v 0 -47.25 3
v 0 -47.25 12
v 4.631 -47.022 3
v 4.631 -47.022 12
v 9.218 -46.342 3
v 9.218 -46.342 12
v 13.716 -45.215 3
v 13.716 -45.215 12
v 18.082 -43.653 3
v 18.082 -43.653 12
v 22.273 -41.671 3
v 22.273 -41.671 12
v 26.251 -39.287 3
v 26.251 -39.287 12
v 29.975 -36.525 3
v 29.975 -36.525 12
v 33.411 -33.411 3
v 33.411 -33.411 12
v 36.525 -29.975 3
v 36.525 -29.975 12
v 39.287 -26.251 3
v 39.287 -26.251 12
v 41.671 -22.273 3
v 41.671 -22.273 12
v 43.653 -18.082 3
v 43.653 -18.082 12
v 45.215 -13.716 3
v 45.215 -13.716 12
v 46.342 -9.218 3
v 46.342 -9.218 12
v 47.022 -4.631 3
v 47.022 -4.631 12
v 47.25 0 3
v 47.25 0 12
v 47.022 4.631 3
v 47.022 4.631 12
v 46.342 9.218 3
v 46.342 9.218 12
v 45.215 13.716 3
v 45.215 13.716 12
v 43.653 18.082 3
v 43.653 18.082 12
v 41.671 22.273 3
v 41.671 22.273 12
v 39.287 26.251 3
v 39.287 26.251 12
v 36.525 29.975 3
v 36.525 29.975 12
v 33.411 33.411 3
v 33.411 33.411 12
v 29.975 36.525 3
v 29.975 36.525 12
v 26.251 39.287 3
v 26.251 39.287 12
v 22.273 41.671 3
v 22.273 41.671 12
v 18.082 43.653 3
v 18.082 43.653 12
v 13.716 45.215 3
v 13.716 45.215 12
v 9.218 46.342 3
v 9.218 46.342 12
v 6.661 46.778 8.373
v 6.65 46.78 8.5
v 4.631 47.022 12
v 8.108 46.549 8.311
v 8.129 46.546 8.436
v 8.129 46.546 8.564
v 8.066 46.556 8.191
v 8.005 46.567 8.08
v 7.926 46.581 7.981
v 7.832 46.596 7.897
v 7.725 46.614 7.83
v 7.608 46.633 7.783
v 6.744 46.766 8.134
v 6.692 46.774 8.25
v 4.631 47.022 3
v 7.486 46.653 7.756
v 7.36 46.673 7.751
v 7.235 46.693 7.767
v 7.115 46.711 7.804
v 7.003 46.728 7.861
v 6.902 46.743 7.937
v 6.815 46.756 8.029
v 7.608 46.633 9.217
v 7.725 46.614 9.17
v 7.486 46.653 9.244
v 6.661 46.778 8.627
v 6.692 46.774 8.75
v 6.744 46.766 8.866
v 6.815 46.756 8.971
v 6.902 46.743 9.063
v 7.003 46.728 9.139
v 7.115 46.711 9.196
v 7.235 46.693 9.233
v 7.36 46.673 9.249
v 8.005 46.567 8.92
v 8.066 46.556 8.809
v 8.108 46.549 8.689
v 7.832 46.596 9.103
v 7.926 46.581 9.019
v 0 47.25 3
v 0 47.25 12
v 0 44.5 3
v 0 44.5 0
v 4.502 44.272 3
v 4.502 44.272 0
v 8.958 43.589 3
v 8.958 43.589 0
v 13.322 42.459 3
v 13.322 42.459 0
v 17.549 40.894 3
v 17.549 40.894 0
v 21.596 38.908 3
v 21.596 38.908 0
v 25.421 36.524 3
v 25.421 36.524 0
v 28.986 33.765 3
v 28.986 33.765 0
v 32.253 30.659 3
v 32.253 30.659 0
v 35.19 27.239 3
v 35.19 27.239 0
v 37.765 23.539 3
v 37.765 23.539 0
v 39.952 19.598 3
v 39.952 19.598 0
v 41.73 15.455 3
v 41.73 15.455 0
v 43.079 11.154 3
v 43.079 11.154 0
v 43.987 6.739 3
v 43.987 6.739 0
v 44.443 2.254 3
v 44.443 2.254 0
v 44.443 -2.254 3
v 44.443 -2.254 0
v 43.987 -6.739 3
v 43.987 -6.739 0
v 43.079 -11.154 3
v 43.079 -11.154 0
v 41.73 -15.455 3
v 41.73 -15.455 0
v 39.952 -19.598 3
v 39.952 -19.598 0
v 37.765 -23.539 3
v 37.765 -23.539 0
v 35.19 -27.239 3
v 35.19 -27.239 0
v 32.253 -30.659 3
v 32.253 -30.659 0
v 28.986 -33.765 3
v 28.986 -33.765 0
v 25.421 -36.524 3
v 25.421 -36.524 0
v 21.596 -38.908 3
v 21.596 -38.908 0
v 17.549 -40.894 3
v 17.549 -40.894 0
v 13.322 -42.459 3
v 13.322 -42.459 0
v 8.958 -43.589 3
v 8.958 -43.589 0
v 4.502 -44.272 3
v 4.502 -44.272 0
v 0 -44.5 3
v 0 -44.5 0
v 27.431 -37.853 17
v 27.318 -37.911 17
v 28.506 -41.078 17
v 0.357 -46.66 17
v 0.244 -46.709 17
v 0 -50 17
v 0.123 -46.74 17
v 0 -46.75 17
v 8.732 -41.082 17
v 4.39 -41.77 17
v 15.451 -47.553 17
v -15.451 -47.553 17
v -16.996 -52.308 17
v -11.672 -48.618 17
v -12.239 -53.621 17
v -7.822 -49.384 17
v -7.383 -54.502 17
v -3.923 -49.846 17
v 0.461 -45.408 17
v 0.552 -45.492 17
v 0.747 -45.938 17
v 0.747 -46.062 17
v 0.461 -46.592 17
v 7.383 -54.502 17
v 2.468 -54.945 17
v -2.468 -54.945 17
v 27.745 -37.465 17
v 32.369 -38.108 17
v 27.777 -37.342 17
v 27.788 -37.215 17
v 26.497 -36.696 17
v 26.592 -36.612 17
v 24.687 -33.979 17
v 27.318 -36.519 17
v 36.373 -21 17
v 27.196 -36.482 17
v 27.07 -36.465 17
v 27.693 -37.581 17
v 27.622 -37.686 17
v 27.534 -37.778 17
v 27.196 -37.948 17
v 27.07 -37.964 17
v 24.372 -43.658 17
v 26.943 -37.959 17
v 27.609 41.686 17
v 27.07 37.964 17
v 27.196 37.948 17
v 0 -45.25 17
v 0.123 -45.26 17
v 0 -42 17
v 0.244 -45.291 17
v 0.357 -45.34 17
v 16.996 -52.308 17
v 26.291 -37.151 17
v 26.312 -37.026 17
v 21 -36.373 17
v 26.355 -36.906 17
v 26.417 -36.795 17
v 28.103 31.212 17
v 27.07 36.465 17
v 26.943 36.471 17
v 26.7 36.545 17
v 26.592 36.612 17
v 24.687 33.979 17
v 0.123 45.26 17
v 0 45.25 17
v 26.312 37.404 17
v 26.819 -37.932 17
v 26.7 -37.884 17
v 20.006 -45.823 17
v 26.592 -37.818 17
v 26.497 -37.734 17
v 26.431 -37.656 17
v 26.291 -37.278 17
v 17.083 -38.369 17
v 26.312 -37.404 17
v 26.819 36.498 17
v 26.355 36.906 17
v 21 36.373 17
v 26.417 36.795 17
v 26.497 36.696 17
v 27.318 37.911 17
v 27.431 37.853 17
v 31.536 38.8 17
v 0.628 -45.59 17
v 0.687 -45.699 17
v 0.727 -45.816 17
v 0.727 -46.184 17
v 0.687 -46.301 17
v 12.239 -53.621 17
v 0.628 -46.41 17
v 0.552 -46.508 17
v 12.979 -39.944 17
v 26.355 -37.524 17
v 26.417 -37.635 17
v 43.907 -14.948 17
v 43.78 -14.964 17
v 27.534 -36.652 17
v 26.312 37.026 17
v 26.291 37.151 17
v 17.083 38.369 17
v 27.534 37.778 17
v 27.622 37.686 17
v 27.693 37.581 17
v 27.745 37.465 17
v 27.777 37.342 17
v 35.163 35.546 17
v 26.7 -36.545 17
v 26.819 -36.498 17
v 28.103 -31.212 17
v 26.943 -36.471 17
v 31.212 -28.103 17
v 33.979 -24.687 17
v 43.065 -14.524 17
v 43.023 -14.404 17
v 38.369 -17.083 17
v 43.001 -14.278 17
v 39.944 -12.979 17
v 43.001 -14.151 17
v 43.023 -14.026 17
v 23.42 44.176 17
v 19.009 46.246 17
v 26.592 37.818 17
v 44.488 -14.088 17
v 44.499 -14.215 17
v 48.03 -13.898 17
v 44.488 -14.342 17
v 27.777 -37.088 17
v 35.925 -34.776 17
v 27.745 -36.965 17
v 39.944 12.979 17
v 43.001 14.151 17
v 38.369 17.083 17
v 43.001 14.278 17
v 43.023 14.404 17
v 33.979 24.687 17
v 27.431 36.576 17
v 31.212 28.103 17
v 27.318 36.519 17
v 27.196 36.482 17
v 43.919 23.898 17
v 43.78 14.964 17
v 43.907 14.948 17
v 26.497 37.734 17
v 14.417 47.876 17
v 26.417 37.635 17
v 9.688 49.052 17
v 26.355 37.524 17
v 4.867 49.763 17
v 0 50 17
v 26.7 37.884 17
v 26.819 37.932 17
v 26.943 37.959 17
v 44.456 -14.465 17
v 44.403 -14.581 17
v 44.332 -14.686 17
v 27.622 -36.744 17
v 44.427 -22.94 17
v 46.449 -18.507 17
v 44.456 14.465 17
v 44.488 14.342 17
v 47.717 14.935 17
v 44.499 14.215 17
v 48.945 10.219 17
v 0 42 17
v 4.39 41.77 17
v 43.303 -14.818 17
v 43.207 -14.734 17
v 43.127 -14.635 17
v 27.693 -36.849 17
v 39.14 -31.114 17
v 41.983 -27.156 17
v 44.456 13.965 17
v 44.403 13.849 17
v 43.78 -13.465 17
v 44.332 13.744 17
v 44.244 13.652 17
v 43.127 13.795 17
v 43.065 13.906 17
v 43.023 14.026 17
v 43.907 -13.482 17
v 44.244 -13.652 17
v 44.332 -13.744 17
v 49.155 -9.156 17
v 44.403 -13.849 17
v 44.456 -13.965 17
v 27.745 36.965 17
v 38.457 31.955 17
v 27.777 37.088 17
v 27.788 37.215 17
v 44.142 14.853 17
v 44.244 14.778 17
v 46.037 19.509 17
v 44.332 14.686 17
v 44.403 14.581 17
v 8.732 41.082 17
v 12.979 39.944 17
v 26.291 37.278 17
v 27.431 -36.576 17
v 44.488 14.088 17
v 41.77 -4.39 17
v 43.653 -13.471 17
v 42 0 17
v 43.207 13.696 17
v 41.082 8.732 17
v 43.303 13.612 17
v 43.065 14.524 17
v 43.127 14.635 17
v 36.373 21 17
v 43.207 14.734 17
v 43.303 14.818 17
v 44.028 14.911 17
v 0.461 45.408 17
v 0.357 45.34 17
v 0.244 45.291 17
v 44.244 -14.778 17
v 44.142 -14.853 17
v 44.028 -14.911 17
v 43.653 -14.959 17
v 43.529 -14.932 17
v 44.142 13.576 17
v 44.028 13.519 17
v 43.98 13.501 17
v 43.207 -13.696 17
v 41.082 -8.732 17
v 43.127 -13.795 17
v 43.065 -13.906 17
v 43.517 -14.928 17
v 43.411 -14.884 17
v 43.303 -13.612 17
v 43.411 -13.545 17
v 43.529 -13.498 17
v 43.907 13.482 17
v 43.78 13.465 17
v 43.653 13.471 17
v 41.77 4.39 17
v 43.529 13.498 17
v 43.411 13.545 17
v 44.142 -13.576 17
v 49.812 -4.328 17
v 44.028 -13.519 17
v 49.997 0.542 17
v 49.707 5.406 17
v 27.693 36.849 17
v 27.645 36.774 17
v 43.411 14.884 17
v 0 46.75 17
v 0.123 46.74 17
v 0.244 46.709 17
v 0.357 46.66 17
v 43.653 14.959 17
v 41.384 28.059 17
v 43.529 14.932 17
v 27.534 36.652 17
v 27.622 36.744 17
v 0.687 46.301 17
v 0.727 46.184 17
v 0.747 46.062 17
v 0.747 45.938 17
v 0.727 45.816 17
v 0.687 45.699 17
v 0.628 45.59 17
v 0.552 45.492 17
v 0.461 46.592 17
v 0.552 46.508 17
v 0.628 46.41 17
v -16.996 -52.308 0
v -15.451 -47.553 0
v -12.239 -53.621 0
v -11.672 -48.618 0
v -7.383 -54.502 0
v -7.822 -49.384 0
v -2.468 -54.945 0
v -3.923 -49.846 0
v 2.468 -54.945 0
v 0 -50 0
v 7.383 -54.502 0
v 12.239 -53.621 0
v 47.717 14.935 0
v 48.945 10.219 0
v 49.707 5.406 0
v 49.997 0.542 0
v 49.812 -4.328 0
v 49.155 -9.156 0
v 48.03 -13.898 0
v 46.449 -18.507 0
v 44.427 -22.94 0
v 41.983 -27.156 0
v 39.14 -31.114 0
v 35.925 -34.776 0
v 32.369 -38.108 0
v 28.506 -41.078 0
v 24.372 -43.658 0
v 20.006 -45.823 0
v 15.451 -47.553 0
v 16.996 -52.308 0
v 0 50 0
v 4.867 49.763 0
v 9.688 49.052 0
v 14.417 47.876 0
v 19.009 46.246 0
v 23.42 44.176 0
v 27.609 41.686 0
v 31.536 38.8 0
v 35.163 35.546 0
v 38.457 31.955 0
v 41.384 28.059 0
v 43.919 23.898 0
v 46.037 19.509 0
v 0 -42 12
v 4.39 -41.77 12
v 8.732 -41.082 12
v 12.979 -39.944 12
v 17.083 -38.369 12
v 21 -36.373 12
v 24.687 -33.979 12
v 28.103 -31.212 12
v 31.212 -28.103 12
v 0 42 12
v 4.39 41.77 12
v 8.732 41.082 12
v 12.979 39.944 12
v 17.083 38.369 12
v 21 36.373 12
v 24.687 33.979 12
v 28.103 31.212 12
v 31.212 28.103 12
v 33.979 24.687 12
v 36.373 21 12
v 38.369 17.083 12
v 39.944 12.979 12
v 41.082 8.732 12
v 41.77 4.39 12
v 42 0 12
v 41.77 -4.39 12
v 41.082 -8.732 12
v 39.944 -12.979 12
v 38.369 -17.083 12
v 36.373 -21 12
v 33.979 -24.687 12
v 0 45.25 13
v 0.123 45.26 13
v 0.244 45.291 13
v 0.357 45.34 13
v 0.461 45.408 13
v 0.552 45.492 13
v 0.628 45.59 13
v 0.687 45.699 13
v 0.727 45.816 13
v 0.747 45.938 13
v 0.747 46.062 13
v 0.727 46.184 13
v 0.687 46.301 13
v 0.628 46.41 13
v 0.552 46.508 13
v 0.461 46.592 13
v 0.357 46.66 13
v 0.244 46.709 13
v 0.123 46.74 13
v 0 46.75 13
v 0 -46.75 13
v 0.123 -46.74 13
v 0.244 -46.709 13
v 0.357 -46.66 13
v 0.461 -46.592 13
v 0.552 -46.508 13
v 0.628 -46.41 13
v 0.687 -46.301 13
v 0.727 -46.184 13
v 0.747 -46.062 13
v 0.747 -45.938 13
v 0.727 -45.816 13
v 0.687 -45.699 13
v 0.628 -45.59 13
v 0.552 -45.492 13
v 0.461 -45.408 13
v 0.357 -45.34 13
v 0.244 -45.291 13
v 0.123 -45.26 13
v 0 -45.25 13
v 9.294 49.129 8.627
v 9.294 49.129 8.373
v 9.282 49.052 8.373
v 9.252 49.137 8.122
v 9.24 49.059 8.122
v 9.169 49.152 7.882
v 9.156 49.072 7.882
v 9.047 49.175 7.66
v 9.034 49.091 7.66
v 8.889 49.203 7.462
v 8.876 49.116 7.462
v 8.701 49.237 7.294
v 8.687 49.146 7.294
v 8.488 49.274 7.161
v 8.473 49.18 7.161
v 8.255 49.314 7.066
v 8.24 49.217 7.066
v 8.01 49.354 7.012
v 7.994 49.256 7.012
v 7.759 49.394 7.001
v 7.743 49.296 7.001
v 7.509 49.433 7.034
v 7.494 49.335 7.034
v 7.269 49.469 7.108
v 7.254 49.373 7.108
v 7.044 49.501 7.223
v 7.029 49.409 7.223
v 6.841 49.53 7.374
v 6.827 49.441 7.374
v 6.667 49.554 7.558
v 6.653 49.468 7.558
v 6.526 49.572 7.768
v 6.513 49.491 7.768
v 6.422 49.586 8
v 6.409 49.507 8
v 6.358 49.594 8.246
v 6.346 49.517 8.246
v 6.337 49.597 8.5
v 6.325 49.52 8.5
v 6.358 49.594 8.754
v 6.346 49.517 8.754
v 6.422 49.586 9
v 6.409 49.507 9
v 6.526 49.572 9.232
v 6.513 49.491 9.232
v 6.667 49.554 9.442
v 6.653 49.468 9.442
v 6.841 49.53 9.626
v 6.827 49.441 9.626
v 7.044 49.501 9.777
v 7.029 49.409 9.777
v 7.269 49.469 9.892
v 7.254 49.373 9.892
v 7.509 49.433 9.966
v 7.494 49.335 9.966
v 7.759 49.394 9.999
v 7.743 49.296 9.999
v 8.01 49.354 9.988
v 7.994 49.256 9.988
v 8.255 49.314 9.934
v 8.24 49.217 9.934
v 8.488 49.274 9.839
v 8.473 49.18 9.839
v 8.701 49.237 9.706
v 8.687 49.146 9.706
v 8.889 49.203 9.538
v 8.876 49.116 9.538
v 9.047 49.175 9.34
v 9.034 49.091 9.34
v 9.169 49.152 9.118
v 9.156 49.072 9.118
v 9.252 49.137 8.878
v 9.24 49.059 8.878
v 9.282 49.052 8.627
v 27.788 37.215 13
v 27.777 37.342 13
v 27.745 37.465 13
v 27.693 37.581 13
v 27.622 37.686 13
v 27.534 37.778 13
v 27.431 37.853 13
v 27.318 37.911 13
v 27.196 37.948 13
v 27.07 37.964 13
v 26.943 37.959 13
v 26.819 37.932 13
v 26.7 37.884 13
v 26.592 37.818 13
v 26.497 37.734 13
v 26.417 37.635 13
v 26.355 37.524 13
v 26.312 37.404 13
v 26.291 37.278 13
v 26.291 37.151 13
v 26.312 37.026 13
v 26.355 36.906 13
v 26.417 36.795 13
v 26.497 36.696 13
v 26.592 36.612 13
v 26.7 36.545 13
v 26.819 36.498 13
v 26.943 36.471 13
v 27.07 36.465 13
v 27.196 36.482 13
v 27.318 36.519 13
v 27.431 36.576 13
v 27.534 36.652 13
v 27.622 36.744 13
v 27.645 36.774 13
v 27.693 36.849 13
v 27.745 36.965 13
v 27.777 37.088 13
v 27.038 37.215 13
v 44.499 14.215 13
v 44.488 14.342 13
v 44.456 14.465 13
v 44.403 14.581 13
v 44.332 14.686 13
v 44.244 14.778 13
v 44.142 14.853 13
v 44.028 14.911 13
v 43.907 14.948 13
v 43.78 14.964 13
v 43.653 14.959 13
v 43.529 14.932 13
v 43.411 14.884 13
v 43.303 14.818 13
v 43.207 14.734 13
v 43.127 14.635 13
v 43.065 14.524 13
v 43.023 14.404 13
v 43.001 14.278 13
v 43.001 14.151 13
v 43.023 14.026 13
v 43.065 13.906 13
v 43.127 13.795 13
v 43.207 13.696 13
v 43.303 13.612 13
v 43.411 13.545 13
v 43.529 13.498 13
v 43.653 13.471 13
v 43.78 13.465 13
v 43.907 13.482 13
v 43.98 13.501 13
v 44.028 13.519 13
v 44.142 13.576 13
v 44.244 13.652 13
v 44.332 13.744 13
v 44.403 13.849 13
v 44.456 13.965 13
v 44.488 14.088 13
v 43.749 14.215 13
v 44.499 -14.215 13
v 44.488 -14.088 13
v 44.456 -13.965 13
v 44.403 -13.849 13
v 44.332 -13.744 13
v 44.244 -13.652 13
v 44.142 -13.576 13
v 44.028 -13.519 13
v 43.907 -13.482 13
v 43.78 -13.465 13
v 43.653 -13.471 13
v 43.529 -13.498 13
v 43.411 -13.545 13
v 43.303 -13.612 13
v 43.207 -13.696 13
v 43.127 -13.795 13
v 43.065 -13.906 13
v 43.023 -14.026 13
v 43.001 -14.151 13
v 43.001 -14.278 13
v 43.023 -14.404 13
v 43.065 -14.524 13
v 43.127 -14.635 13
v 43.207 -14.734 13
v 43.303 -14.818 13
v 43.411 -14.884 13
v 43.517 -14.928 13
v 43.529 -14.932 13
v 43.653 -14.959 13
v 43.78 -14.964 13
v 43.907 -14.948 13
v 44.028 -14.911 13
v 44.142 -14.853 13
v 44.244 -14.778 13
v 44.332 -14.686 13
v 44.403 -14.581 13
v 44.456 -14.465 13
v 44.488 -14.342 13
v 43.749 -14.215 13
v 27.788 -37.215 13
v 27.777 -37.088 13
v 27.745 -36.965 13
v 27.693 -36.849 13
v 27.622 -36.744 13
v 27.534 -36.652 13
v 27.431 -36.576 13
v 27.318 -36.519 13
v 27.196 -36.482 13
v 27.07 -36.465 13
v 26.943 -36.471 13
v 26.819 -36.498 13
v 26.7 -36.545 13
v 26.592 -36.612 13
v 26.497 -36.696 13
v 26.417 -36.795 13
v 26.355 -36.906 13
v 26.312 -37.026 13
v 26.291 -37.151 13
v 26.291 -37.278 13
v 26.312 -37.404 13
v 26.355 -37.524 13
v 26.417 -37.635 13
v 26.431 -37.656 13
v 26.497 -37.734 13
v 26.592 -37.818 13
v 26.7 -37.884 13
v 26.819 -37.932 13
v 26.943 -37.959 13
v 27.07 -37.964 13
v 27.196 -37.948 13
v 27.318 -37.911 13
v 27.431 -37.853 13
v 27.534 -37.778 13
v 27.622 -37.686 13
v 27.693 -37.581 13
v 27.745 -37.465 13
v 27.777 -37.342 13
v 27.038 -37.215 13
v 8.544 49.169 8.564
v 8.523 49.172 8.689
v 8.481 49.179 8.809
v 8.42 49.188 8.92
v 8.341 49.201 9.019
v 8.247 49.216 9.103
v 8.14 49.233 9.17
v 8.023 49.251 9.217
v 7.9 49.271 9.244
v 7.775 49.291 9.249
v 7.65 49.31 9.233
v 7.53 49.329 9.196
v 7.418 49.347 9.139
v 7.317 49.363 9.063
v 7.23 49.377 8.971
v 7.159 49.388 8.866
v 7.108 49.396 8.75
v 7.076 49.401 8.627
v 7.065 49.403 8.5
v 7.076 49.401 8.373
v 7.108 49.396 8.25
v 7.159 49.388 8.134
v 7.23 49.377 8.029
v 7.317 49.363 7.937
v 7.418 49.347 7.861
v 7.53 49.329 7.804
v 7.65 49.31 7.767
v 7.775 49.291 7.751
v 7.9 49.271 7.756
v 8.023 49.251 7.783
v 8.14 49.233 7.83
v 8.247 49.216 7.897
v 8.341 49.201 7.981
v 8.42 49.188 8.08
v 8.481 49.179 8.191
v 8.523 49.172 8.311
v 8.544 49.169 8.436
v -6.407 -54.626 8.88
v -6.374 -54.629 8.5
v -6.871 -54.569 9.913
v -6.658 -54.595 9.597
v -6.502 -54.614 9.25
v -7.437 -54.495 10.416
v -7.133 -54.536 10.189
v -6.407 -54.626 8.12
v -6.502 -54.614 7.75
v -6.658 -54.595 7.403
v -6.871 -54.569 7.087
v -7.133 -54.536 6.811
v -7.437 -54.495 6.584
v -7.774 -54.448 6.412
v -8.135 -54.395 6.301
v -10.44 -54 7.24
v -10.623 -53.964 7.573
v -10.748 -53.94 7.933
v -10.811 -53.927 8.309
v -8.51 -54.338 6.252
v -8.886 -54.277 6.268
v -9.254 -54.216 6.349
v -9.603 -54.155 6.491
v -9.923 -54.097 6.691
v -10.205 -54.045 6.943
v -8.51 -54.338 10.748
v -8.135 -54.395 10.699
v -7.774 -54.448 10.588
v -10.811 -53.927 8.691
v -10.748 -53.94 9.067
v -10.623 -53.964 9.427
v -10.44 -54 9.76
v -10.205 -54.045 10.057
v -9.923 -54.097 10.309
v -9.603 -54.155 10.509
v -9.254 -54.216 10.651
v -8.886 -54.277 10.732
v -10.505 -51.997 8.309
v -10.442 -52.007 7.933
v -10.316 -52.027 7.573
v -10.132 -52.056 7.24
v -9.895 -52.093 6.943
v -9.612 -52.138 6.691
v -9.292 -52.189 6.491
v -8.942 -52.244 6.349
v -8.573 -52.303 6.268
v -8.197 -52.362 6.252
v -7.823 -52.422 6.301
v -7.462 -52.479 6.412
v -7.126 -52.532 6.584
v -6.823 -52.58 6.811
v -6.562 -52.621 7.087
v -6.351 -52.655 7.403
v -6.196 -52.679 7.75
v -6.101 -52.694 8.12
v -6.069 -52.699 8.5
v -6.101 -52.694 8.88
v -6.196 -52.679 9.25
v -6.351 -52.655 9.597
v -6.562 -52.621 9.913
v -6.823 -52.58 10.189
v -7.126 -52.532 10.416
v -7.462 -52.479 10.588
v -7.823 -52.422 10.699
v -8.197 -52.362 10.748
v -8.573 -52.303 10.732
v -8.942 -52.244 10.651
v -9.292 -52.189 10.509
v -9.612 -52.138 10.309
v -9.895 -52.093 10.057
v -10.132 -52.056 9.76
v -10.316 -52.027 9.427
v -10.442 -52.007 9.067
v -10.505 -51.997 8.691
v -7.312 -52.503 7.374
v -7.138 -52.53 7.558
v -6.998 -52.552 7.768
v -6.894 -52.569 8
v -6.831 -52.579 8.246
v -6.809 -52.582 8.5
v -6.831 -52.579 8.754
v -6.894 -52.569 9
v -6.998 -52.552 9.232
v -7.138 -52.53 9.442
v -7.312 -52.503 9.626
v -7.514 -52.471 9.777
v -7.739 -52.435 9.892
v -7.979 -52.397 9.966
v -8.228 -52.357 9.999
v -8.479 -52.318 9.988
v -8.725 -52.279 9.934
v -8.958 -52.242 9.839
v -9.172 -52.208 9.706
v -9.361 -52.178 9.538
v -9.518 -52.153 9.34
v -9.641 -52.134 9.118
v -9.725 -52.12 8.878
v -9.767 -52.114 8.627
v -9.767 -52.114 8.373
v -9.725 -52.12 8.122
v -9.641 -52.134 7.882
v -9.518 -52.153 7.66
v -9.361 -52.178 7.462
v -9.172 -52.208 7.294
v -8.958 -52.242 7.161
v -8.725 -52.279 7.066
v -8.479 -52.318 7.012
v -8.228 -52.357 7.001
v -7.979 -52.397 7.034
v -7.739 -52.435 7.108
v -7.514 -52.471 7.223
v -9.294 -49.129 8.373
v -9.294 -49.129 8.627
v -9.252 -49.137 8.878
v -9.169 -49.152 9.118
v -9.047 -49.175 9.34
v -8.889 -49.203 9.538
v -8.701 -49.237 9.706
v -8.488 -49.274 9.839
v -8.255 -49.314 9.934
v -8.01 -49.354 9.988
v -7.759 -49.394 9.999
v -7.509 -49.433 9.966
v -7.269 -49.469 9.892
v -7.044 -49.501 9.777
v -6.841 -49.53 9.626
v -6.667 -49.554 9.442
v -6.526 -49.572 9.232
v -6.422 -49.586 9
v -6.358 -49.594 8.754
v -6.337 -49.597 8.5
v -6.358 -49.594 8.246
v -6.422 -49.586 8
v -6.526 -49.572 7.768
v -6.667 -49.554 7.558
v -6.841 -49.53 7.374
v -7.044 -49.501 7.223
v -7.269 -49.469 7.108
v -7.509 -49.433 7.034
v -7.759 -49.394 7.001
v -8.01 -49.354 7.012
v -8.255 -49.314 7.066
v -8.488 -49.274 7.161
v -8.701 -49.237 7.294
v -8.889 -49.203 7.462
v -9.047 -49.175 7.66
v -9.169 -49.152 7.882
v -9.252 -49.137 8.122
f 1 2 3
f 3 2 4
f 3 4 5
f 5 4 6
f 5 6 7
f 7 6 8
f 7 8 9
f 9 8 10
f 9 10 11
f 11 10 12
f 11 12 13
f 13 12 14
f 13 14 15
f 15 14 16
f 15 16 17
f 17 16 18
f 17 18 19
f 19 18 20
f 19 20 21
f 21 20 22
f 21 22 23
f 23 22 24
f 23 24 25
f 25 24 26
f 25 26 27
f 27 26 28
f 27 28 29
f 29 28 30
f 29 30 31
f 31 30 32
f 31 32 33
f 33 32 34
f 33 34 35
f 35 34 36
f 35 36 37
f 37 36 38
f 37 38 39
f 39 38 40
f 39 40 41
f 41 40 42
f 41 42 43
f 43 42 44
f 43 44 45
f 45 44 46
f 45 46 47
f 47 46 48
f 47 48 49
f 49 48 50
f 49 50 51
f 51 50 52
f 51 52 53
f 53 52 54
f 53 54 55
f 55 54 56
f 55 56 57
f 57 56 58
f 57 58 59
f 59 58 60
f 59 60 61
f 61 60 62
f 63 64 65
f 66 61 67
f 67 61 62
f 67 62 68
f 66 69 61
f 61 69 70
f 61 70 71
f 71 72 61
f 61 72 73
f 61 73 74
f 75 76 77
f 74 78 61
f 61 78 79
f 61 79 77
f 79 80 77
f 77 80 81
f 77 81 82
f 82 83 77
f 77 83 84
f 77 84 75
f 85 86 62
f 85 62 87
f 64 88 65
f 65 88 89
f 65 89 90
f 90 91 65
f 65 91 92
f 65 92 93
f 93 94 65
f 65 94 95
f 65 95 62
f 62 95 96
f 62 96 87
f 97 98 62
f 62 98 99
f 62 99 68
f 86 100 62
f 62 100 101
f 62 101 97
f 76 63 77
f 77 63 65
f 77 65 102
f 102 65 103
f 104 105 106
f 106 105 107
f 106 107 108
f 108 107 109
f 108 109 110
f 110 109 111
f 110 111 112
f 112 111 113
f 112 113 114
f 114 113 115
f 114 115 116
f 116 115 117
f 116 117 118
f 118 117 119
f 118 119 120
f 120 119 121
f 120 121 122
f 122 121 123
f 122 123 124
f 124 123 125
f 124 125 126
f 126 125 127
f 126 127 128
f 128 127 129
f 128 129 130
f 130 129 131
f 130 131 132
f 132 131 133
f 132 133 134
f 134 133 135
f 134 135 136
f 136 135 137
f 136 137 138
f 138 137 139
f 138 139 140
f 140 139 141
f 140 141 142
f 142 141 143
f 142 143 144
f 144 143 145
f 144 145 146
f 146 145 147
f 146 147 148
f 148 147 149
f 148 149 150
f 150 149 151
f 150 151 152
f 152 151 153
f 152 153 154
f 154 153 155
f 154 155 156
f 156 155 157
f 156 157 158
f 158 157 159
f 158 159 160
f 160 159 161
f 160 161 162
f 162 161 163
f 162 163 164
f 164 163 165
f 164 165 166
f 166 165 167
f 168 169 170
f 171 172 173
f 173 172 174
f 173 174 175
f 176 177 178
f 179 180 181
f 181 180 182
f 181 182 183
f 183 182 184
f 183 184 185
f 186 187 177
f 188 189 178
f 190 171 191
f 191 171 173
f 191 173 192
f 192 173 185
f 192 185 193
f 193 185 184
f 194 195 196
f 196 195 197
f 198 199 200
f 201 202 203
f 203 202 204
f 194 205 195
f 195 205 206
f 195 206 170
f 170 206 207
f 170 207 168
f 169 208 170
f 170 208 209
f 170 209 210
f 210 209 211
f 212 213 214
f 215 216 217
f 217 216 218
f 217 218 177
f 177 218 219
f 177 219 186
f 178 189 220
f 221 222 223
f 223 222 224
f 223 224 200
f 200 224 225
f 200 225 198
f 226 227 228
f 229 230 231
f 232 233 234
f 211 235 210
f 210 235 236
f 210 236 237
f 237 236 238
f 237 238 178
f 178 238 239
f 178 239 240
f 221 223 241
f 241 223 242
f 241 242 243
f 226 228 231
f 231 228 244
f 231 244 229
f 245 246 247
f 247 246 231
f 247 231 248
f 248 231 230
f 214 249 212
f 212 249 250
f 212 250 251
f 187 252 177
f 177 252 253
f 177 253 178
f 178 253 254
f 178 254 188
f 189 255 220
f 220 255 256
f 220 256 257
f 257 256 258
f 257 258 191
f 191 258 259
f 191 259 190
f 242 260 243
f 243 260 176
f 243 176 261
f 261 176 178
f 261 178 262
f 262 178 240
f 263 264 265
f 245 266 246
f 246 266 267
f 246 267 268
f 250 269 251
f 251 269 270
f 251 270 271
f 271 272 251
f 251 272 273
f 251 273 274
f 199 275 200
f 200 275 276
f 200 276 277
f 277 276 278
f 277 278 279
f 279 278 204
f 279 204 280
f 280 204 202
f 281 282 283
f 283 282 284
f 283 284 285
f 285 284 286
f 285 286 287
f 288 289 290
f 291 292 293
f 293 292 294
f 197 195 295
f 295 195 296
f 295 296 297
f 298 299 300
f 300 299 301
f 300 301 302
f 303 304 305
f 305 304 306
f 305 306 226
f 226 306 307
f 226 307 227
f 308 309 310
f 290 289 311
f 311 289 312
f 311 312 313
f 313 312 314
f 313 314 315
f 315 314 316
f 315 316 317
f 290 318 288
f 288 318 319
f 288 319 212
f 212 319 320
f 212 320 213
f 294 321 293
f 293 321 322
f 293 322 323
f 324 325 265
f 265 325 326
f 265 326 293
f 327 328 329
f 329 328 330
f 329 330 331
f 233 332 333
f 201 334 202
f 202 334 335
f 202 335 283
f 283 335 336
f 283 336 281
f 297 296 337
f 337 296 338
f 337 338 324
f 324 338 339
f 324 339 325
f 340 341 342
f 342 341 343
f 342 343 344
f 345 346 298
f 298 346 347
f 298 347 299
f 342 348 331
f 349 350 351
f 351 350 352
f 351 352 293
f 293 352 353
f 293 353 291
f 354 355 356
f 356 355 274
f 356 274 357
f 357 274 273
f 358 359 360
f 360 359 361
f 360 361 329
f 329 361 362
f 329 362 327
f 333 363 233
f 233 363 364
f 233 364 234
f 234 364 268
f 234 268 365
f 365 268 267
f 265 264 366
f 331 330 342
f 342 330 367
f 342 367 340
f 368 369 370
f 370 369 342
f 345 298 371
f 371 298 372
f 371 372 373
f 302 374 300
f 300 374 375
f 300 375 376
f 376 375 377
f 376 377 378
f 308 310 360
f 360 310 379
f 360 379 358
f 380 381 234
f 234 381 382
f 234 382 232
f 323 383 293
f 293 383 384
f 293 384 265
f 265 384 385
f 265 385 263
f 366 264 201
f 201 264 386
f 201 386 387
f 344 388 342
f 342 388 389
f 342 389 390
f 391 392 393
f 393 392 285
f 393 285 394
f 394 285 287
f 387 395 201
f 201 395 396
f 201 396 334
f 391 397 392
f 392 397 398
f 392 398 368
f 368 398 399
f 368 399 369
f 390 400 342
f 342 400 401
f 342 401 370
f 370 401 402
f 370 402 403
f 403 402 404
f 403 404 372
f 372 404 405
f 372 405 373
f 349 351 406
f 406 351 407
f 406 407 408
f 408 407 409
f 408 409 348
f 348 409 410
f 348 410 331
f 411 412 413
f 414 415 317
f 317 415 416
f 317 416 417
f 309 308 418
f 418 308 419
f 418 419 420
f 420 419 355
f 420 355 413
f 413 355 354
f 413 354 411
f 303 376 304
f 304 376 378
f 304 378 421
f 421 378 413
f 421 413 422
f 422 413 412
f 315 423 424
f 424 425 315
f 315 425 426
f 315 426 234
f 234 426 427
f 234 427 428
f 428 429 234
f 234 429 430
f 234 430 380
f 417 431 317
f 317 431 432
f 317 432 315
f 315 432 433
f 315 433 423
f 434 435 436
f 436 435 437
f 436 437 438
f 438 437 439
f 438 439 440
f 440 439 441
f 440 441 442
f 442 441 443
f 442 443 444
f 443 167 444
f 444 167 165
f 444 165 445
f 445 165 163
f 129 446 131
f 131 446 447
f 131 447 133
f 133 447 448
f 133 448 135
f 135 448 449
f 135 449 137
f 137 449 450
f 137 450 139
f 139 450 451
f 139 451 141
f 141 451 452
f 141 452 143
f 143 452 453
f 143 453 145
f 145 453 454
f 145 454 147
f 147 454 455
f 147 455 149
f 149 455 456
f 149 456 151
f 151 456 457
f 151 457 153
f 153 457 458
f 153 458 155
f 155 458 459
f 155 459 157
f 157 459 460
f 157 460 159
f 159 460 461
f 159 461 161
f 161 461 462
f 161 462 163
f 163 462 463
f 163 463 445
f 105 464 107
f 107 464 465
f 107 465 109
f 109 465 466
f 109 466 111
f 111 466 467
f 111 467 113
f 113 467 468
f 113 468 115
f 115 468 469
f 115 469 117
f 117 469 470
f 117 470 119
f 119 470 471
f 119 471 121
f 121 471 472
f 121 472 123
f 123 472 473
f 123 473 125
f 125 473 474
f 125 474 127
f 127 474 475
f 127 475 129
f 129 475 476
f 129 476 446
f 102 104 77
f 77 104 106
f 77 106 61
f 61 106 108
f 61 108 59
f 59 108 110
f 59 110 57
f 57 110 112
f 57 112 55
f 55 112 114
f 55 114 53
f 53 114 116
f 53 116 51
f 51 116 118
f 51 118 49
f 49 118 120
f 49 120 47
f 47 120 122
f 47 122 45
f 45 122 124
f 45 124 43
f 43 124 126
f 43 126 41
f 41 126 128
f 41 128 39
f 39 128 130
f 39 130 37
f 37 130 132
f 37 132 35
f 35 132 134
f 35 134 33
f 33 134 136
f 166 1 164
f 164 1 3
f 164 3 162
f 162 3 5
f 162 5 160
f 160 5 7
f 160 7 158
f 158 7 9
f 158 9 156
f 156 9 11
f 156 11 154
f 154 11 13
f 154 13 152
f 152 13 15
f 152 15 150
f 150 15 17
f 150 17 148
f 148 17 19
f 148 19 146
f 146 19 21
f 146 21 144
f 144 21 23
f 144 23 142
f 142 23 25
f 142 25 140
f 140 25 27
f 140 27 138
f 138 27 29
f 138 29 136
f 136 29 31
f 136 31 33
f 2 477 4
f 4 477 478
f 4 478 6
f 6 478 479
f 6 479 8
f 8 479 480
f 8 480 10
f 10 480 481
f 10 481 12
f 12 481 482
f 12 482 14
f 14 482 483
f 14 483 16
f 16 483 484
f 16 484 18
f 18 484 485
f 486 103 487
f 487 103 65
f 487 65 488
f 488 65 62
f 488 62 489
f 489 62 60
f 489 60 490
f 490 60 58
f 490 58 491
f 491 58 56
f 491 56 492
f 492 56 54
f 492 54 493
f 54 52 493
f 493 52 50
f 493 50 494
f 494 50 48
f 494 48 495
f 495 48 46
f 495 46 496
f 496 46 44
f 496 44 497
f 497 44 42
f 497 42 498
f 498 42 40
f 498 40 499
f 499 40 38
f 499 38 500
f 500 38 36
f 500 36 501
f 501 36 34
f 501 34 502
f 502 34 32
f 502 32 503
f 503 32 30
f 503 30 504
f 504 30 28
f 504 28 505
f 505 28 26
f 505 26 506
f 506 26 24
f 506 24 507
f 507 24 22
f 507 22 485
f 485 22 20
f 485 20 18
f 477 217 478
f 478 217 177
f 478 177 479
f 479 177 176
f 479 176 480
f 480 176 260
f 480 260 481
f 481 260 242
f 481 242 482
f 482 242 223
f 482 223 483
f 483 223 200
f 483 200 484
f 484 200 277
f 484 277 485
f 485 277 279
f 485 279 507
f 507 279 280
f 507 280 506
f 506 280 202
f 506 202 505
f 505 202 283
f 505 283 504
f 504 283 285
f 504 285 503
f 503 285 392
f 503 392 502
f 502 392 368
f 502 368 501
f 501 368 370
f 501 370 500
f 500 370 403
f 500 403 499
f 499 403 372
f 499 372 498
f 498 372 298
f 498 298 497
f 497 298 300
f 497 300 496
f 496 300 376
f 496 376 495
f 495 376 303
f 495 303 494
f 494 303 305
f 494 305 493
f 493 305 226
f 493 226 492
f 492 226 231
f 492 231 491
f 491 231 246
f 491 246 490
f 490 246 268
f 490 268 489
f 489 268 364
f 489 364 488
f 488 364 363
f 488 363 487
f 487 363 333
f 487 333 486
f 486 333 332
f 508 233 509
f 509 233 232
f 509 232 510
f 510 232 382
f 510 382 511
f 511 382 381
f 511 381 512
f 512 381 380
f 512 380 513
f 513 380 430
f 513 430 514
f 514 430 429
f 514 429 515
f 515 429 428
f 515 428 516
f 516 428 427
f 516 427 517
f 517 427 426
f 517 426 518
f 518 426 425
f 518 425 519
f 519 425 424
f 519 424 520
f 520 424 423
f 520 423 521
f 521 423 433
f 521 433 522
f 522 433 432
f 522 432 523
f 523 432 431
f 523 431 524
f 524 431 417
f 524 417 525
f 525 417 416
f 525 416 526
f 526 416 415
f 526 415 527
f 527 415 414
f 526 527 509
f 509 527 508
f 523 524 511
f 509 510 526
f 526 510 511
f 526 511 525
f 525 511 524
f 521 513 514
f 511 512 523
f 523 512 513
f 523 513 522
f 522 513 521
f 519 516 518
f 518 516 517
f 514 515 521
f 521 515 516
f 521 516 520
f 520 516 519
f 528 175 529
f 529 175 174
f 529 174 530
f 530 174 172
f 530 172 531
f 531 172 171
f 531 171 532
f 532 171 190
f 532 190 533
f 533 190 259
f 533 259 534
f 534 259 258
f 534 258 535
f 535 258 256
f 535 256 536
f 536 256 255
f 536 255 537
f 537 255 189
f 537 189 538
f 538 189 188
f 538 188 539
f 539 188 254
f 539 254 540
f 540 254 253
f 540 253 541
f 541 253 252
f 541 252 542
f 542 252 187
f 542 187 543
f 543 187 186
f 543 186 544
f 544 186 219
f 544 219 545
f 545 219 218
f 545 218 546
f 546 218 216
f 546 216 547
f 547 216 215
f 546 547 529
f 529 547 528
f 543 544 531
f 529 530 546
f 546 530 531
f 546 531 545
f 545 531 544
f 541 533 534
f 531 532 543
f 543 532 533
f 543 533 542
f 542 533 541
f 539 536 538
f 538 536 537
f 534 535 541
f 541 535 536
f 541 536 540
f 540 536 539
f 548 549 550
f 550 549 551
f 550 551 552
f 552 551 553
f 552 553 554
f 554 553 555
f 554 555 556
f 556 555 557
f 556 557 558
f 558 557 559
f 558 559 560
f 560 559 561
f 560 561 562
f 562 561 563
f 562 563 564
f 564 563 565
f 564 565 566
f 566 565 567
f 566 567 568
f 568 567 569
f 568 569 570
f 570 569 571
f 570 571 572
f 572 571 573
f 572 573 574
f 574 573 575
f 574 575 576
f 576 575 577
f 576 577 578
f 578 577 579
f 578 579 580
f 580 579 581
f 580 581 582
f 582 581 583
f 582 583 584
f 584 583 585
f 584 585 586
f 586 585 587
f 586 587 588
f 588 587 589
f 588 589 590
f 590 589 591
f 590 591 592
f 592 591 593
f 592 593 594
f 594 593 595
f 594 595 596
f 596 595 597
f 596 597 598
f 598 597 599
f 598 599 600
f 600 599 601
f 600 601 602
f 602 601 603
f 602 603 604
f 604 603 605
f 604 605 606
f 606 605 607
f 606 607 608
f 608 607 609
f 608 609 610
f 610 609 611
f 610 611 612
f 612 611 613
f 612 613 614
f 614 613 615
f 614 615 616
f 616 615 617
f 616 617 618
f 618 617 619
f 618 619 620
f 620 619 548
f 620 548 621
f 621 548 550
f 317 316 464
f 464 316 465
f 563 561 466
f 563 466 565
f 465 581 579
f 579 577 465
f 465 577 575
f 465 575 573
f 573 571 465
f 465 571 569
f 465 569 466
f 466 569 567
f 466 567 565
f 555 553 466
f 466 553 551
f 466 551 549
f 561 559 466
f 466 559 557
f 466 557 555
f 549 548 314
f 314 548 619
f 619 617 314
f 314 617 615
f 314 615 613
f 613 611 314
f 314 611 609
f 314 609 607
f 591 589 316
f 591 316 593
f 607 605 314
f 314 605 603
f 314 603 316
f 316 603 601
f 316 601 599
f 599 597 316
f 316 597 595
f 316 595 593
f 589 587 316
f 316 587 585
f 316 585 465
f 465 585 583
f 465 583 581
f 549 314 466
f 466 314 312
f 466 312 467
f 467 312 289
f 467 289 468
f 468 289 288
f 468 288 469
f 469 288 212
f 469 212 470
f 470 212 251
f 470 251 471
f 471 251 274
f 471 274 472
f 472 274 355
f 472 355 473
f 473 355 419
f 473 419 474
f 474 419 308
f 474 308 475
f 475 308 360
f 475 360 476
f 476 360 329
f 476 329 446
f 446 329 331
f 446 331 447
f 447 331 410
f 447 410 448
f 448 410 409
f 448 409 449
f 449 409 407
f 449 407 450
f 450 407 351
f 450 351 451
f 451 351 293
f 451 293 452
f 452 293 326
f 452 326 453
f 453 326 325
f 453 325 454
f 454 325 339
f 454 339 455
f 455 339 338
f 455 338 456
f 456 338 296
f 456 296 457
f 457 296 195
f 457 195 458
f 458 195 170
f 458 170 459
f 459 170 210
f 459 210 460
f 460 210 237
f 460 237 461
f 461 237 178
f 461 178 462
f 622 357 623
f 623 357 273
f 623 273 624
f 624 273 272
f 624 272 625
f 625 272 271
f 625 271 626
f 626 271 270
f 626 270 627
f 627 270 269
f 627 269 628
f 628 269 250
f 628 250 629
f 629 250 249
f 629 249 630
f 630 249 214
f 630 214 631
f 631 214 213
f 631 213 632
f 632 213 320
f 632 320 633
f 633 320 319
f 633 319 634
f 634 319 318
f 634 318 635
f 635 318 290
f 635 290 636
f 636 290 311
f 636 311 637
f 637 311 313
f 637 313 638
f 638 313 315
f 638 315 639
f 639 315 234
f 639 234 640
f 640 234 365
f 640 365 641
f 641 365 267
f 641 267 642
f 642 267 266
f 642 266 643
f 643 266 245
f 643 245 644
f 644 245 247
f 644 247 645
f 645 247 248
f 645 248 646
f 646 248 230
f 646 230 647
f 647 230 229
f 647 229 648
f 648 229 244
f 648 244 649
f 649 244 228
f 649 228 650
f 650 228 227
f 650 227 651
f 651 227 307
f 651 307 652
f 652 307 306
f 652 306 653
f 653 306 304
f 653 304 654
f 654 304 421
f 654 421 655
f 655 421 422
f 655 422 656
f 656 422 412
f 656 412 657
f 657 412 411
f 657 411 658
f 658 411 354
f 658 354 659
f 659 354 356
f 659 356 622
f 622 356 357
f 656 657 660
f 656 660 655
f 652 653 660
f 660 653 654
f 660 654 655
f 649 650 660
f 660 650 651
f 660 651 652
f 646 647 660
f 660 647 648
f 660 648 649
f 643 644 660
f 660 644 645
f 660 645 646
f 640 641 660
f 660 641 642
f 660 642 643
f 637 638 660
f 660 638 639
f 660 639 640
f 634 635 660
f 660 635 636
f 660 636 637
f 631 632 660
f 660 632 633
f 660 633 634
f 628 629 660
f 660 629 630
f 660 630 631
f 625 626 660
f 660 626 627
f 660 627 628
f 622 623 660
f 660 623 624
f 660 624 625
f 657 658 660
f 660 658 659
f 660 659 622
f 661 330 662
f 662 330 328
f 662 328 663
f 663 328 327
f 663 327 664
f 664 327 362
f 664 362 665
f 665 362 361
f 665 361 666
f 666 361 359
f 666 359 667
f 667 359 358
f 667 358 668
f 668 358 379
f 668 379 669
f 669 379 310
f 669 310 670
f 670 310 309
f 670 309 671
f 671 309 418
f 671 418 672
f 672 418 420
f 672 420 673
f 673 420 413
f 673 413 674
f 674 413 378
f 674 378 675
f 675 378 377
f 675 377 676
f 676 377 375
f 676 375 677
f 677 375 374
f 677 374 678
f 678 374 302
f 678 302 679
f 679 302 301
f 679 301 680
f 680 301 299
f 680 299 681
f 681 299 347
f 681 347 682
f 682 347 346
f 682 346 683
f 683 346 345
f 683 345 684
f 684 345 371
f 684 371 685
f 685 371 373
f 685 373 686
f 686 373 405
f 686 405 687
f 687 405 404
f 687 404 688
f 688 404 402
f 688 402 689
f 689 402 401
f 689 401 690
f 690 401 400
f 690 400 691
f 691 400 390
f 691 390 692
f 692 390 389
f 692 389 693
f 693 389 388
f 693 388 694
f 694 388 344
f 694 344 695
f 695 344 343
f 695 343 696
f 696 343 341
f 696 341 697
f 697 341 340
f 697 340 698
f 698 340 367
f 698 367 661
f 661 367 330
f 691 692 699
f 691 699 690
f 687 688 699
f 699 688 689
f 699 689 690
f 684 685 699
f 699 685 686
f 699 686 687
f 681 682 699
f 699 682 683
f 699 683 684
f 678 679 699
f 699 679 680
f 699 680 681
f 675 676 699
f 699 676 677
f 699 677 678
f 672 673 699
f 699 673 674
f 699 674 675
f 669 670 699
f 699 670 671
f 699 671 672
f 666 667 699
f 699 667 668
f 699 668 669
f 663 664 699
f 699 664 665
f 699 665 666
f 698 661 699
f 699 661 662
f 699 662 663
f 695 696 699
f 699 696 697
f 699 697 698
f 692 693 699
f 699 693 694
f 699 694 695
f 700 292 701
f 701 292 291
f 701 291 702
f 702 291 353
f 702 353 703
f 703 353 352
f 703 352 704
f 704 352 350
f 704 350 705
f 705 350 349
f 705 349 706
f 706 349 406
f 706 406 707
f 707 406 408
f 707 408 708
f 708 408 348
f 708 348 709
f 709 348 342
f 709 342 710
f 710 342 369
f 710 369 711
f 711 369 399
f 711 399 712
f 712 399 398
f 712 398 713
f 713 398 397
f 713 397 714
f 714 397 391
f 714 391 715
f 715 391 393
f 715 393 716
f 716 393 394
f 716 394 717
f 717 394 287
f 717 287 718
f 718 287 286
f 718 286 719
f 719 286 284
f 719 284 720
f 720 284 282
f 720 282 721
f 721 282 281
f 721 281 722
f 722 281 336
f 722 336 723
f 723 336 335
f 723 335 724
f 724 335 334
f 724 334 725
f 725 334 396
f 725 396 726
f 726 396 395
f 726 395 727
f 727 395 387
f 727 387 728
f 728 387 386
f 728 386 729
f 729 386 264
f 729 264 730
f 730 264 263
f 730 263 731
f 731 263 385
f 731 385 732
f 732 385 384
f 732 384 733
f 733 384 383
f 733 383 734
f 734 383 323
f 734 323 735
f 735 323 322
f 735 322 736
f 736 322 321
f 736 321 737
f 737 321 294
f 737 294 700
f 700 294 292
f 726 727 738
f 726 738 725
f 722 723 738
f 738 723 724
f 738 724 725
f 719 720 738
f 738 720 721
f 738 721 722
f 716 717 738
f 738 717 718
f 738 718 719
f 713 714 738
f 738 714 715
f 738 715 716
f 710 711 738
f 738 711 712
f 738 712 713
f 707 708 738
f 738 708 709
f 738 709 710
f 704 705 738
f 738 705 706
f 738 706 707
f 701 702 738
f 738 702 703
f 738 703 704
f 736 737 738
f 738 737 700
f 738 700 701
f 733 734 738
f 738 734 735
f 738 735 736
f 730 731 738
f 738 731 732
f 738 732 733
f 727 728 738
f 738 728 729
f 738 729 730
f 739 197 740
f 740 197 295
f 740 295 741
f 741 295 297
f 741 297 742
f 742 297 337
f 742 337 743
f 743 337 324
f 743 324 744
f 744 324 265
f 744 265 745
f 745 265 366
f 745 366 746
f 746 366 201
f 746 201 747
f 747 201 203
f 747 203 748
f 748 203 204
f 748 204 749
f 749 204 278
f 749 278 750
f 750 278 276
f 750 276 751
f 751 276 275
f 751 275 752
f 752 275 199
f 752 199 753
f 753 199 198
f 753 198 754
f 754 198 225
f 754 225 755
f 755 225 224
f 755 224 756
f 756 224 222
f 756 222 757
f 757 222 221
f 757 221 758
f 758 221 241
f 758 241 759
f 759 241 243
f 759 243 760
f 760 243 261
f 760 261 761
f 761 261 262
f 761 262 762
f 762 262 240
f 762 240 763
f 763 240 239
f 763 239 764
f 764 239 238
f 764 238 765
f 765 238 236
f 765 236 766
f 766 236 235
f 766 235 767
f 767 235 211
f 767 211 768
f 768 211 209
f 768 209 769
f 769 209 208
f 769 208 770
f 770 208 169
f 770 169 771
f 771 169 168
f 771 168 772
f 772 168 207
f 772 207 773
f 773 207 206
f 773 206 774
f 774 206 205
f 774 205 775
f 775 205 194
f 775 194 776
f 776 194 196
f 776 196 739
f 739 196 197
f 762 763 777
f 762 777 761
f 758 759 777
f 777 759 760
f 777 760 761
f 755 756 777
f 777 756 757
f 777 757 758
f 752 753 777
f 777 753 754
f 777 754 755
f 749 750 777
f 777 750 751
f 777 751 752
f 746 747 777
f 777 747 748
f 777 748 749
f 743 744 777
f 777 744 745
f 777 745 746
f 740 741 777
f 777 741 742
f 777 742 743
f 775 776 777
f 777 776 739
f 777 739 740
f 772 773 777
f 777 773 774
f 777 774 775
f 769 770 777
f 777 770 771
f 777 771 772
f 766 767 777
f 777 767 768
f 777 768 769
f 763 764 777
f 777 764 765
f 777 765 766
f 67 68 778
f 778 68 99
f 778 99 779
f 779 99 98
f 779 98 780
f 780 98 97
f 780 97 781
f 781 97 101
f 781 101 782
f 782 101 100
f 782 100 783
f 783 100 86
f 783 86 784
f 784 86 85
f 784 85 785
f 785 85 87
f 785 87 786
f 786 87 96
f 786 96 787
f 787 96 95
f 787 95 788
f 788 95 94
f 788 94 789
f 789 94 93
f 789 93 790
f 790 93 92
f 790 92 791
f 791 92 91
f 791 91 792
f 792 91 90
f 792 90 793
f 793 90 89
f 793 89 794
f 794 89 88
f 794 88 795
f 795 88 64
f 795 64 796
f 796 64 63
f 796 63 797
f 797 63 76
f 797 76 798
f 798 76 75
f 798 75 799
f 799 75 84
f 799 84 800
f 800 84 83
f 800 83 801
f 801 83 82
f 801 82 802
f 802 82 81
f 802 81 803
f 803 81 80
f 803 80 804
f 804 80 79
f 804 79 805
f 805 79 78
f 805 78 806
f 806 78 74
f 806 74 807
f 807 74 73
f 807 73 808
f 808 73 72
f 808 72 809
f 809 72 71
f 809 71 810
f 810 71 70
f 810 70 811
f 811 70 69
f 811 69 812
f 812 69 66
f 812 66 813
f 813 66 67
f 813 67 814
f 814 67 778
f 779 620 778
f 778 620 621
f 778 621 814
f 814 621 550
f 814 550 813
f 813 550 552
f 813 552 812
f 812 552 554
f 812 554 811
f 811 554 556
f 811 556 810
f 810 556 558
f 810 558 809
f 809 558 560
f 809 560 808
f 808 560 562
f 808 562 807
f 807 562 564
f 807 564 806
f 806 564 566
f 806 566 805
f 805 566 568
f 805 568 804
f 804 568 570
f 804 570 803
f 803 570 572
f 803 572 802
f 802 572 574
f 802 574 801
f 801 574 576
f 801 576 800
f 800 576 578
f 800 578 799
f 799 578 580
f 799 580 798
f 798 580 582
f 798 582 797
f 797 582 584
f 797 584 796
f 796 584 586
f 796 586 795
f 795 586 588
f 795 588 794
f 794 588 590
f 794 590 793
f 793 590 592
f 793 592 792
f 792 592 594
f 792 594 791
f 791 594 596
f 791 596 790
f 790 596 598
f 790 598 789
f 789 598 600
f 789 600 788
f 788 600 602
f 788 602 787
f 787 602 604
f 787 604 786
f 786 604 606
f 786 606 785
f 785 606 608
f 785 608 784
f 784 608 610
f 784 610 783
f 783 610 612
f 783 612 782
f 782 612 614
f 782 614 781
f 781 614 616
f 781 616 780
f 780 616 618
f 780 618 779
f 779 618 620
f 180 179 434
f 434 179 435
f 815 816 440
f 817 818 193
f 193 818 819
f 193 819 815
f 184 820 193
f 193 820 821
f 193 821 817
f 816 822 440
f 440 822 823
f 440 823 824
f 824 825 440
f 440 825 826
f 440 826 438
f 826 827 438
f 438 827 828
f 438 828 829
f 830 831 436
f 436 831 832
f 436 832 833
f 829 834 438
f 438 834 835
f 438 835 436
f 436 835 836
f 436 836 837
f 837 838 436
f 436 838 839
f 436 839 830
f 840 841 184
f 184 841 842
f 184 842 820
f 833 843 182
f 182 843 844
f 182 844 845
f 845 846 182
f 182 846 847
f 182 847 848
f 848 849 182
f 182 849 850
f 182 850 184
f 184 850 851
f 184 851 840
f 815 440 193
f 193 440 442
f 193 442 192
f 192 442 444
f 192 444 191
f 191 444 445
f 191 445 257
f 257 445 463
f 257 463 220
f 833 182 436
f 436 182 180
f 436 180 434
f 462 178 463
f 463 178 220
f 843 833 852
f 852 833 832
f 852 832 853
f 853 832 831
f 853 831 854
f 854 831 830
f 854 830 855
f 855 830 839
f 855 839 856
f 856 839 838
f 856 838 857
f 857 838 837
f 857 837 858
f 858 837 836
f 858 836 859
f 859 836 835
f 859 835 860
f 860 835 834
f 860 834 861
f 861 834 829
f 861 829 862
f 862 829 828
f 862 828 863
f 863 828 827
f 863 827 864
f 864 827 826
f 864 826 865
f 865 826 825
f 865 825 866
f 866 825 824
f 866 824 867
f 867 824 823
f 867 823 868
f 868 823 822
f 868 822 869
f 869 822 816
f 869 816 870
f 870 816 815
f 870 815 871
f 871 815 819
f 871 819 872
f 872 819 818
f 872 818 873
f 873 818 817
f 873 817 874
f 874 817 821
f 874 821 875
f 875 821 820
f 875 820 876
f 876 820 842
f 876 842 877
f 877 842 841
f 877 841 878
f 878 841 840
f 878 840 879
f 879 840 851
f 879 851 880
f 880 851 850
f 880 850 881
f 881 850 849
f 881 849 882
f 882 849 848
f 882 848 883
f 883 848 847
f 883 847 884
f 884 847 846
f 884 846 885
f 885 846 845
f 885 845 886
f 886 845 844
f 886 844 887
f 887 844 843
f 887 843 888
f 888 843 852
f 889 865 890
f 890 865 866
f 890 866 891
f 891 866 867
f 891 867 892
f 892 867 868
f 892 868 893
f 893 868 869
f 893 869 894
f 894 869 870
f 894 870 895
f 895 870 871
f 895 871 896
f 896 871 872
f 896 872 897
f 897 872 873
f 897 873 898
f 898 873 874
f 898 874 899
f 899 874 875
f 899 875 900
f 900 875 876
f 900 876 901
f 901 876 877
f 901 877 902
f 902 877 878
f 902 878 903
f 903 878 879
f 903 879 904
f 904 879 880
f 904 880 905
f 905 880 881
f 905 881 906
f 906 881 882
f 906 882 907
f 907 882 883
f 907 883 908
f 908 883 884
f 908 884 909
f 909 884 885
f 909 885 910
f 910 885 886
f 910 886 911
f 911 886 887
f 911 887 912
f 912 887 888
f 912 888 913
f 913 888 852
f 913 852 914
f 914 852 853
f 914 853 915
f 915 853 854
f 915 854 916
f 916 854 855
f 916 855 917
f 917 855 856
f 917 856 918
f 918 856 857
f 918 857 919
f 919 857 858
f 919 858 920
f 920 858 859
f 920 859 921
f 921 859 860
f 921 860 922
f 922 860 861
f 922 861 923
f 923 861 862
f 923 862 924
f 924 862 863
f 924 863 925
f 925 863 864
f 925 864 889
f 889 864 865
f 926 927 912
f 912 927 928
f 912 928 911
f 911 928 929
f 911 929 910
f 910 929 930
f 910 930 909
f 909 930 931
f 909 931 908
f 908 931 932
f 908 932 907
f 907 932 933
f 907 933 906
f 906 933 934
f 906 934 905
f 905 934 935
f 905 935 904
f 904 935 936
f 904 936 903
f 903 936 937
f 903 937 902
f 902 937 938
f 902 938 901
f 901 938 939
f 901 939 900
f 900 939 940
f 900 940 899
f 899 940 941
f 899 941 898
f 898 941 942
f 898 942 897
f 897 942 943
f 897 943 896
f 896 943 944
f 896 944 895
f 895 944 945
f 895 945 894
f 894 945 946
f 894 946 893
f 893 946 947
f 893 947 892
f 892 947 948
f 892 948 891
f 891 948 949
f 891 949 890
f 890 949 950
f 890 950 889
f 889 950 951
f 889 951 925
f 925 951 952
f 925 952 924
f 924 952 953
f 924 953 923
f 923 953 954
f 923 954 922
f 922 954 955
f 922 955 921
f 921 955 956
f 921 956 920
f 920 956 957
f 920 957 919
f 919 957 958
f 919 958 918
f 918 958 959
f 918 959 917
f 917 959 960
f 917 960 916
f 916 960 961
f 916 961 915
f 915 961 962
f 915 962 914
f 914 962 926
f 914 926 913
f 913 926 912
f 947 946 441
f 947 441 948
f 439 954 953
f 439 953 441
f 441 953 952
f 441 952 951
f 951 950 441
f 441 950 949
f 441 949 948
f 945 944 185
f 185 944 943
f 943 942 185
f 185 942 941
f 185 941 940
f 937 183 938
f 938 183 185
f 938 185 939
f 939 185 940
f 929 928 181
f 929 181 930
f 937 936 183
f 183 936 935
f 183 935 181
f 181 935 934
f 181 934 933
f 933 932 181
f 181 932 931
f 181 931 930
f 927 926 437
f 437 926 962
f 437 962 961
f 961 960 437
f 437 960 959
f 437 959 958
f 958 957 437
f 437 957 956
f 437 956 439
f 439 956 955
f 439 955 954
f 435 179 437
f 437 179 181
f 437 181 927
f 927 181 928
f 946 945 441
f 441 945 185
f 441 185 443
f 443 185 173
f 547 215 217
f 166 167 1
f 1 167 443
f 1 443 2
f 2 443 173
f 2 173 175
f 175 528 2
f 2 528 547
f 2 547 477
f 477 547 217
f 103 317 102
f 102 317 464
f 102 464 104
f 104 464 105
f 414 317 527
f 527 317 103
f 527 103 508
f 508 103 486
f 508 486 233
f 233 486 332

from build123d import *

# Parameters (mm, degrees)
SKETCH_1_R               = 49.25
SKETCH_1_R_2             = 44.5
EXTRUDE_1_DEPTH          = 17
CUT_EXTRUDE_START        = 17
SKETCH_1_5_R             = 47.25
CUT_EXTRUDE_2_DEPTH      = 14
EXTRUDE_START            = 12
SKETCH_1_6_R             = 49.25
SKETCH_1_6_R_2           = 42
EXTRUDE_2_DEPTH          = 5
SKETCH_2_R               = 50
SKETCH_2_R_2             = 49.25
EXTRUDE_3_DEPTH          = 17
SKETCH_2_4_R             = 0.75
CUT_EXTRUDE_3_DEPTH      = 4
PATTERN_CIRCULAR_1_COUNT = 10
EXTRUDE_START_2          = 8.5
EXTRUDE_4_DEPTH          = 17
PATTERN_CIRCULAR_2_COUNT = 2
CUT_EXTRUDE_START_2      = -8.5
CUT_EXTRUDE_5_DEPTH      = 17


# Read off the part's stored shape, not the designer's step: 切除-拉伸5
with BuildPart() as part:
    # 草图1 → 凸台-拉伸1 (new body)
    with BuildSketch(Plane.XY):
        Circle(SKETCH_1_R)
        Circle(SKETCH_1_R_2, mode=Mode.SUBTRACT)
    extrude(amount=EXTRUDE_1_DEPTH)

    # 草图1<5> → 切除-拉伸2 (cut)
    with BuildSketch(Plane.XY.offset(CUT_EXTRUDE_START)):
        Circle(SKETCH_1_5_R)
    extrude(amount=-CUT_EXTRUDE_2_DEPTH, mode=Mode.SUBTRACT)

    # 草图1<6> → 凸台-拉伸2 (add)
    with BuildSketch(Plane.XY.offset(EXTRUDE_START)):
        Circle(SKETCH_1_6_R)
        Circle(SKETCH_1_6_R_2, mode=Mode.SUBTRACT)
    extrude(amount=EXTRUDE_2_DEPTH)

    # 草图2 → 凸台-拉伸3 (add, through all)
    with BuildSketch(Plane.XY.offset(17)):
        Circle(SKETCH_2_R)
        Circle(SKETCH_2_R_2, mode=Mode.SUBTRACT)
    extrude(amount=-EXTRUDE_3_DEPTH)

    # 草图2<4> → 切除-拉伸3 (cut)
    with BuildSketch(Plane.XY.offset(17)):
        with Locations((0, 46)):
            Circle(SKETCH_2_4_R)
    cut_extrude_3 = extrude(amount=-CUT_EXTRUDE_3_DEPTH, mode=Mode.SUBTRACT)

    # 阵列(圆周)1: 切除-拉伸3 ×10 about axis
    pattern_circular_1_axis = Axis((0, 0, 0), (0, 0, 1))
    for i in range(1, PATTERN_CIRCULAR_1_COUNT):
        add(cut_extrude_3.rotate(pattern_circular_1_axis, i * 360 / PATTERN_CIRCULAR_1_COUNT), mode=Mode.SUBTRACT)

    # 草图3 → 凸台-拉伸4 (add)
    with BuildSketch(Plane.XY.offset(8.5).offset(EXTRUDE_START_2)):
        with BuildLine():
            Line((15.450849719, 47.552825815), (16.995934691, 52.308108396))
            ThreePointArc((16.995934691, 52.308108396), (0, 55), (-16.995934691, 52.308108396))
            Line((-16.995934691, 52.308108396), (-15.450849719, 47.552825815))
            ThreePointArc((-15.450849719, 47.552825815), (0, 50), (15.450849719, 47.552825815))
        make_face()
    extrude_4 = extrude(amount=-EXTRUDE_4_DEPTH)

    # 草图3<5> → 切除-旋转1 (revolve, cut)
    with BuildSketch(Plane.XY.offset(8.5)):
        Polygon((6.324547295, 49.520299893), (7.06531355, 49.402974044), (7.806079806, 49.285648196), (8.291026647, 52.347482052), (6.809494136, 52.582133749), align=None)
        Polygon((7.806079806, 49.285648196), (7.06531355, 49.402974044), (6.43957569, 45.452220682), (7.180341945, 45.334894833), align=None)
        Polygon((6.809494136, 52.582133749), (8.291026647, 52.347482052), (8.603895577, 54.322858733), (6.381596811, 54.674836279), (6.068727881, 52.699459598), align=None)
    cut_revolve_1 = revolve(axis=Axis((7.821723252, 49.38441703, 8.5), (-0.15643446504023117, -0.9876883405951378, 0)), mode=Mode.SUBTRACT)

    # 阵列(圆周)2: 凸台-拉伸4, 切除-旋转1 ×2 about axis
    pattern_circular_2_axis = Axis((0, 0, 0), (0, 0, 1))
    add([extrude_4.rotate(pattern_circular_2_axis, i * 360 / PATTERN_CIRCULAR_2_COUNT) for i in range(1, PATTERN_CIRCULAR_2_COUNT)])
    add([cut_revolve_1.rotate(pattern_circular_2_axis, i * 360 / PATTERN_CIRCULAR_2_COUNT) for i in range(1, PATTERN_CIRCULAR_2_COUNT)], mode=Mode.SUBTRACT)

    # 切除-拉伸5 outline → 切除-拉伸5 (cut)
    with BuildSketch(Plane.XY.offset(8.5).offset(CUT_EXTRUDE_START_2)):
        with BuildLine():
            ThreePointArc((0, 50), (7.821723252, 49.38441703), (15.450849719, 47.552825815))
            Line((15.450849719, 47.552825815), (16.995934691, 52.308108396))
            ThreePointArc((16.995934691, 52.308108396), (0, 55), (-16.995934691, 52.308108396))
            Line((-16.995934691, 52.308108396), (-15.450849719, 47.552825815))
            ThreePointArc((-15.450849719, 47.552825815), (-50, 0), (-15.450849719, -47.552825815))
            ThreePointArc((-15.450849719, -47.552825815), (-7.821723252, -49.38441703), (0, -50))
            Line((0, -50), (0, -42))
            ThreePointArc((0, -42), (-42, 0), (0, 42))
            Line((0, 42), (0, 50))
        make_face()
    extrude(amount=CUT_EXTRUDE_5_DEPTH, mode=Mode.SUBTRACT)


solid = part.part
